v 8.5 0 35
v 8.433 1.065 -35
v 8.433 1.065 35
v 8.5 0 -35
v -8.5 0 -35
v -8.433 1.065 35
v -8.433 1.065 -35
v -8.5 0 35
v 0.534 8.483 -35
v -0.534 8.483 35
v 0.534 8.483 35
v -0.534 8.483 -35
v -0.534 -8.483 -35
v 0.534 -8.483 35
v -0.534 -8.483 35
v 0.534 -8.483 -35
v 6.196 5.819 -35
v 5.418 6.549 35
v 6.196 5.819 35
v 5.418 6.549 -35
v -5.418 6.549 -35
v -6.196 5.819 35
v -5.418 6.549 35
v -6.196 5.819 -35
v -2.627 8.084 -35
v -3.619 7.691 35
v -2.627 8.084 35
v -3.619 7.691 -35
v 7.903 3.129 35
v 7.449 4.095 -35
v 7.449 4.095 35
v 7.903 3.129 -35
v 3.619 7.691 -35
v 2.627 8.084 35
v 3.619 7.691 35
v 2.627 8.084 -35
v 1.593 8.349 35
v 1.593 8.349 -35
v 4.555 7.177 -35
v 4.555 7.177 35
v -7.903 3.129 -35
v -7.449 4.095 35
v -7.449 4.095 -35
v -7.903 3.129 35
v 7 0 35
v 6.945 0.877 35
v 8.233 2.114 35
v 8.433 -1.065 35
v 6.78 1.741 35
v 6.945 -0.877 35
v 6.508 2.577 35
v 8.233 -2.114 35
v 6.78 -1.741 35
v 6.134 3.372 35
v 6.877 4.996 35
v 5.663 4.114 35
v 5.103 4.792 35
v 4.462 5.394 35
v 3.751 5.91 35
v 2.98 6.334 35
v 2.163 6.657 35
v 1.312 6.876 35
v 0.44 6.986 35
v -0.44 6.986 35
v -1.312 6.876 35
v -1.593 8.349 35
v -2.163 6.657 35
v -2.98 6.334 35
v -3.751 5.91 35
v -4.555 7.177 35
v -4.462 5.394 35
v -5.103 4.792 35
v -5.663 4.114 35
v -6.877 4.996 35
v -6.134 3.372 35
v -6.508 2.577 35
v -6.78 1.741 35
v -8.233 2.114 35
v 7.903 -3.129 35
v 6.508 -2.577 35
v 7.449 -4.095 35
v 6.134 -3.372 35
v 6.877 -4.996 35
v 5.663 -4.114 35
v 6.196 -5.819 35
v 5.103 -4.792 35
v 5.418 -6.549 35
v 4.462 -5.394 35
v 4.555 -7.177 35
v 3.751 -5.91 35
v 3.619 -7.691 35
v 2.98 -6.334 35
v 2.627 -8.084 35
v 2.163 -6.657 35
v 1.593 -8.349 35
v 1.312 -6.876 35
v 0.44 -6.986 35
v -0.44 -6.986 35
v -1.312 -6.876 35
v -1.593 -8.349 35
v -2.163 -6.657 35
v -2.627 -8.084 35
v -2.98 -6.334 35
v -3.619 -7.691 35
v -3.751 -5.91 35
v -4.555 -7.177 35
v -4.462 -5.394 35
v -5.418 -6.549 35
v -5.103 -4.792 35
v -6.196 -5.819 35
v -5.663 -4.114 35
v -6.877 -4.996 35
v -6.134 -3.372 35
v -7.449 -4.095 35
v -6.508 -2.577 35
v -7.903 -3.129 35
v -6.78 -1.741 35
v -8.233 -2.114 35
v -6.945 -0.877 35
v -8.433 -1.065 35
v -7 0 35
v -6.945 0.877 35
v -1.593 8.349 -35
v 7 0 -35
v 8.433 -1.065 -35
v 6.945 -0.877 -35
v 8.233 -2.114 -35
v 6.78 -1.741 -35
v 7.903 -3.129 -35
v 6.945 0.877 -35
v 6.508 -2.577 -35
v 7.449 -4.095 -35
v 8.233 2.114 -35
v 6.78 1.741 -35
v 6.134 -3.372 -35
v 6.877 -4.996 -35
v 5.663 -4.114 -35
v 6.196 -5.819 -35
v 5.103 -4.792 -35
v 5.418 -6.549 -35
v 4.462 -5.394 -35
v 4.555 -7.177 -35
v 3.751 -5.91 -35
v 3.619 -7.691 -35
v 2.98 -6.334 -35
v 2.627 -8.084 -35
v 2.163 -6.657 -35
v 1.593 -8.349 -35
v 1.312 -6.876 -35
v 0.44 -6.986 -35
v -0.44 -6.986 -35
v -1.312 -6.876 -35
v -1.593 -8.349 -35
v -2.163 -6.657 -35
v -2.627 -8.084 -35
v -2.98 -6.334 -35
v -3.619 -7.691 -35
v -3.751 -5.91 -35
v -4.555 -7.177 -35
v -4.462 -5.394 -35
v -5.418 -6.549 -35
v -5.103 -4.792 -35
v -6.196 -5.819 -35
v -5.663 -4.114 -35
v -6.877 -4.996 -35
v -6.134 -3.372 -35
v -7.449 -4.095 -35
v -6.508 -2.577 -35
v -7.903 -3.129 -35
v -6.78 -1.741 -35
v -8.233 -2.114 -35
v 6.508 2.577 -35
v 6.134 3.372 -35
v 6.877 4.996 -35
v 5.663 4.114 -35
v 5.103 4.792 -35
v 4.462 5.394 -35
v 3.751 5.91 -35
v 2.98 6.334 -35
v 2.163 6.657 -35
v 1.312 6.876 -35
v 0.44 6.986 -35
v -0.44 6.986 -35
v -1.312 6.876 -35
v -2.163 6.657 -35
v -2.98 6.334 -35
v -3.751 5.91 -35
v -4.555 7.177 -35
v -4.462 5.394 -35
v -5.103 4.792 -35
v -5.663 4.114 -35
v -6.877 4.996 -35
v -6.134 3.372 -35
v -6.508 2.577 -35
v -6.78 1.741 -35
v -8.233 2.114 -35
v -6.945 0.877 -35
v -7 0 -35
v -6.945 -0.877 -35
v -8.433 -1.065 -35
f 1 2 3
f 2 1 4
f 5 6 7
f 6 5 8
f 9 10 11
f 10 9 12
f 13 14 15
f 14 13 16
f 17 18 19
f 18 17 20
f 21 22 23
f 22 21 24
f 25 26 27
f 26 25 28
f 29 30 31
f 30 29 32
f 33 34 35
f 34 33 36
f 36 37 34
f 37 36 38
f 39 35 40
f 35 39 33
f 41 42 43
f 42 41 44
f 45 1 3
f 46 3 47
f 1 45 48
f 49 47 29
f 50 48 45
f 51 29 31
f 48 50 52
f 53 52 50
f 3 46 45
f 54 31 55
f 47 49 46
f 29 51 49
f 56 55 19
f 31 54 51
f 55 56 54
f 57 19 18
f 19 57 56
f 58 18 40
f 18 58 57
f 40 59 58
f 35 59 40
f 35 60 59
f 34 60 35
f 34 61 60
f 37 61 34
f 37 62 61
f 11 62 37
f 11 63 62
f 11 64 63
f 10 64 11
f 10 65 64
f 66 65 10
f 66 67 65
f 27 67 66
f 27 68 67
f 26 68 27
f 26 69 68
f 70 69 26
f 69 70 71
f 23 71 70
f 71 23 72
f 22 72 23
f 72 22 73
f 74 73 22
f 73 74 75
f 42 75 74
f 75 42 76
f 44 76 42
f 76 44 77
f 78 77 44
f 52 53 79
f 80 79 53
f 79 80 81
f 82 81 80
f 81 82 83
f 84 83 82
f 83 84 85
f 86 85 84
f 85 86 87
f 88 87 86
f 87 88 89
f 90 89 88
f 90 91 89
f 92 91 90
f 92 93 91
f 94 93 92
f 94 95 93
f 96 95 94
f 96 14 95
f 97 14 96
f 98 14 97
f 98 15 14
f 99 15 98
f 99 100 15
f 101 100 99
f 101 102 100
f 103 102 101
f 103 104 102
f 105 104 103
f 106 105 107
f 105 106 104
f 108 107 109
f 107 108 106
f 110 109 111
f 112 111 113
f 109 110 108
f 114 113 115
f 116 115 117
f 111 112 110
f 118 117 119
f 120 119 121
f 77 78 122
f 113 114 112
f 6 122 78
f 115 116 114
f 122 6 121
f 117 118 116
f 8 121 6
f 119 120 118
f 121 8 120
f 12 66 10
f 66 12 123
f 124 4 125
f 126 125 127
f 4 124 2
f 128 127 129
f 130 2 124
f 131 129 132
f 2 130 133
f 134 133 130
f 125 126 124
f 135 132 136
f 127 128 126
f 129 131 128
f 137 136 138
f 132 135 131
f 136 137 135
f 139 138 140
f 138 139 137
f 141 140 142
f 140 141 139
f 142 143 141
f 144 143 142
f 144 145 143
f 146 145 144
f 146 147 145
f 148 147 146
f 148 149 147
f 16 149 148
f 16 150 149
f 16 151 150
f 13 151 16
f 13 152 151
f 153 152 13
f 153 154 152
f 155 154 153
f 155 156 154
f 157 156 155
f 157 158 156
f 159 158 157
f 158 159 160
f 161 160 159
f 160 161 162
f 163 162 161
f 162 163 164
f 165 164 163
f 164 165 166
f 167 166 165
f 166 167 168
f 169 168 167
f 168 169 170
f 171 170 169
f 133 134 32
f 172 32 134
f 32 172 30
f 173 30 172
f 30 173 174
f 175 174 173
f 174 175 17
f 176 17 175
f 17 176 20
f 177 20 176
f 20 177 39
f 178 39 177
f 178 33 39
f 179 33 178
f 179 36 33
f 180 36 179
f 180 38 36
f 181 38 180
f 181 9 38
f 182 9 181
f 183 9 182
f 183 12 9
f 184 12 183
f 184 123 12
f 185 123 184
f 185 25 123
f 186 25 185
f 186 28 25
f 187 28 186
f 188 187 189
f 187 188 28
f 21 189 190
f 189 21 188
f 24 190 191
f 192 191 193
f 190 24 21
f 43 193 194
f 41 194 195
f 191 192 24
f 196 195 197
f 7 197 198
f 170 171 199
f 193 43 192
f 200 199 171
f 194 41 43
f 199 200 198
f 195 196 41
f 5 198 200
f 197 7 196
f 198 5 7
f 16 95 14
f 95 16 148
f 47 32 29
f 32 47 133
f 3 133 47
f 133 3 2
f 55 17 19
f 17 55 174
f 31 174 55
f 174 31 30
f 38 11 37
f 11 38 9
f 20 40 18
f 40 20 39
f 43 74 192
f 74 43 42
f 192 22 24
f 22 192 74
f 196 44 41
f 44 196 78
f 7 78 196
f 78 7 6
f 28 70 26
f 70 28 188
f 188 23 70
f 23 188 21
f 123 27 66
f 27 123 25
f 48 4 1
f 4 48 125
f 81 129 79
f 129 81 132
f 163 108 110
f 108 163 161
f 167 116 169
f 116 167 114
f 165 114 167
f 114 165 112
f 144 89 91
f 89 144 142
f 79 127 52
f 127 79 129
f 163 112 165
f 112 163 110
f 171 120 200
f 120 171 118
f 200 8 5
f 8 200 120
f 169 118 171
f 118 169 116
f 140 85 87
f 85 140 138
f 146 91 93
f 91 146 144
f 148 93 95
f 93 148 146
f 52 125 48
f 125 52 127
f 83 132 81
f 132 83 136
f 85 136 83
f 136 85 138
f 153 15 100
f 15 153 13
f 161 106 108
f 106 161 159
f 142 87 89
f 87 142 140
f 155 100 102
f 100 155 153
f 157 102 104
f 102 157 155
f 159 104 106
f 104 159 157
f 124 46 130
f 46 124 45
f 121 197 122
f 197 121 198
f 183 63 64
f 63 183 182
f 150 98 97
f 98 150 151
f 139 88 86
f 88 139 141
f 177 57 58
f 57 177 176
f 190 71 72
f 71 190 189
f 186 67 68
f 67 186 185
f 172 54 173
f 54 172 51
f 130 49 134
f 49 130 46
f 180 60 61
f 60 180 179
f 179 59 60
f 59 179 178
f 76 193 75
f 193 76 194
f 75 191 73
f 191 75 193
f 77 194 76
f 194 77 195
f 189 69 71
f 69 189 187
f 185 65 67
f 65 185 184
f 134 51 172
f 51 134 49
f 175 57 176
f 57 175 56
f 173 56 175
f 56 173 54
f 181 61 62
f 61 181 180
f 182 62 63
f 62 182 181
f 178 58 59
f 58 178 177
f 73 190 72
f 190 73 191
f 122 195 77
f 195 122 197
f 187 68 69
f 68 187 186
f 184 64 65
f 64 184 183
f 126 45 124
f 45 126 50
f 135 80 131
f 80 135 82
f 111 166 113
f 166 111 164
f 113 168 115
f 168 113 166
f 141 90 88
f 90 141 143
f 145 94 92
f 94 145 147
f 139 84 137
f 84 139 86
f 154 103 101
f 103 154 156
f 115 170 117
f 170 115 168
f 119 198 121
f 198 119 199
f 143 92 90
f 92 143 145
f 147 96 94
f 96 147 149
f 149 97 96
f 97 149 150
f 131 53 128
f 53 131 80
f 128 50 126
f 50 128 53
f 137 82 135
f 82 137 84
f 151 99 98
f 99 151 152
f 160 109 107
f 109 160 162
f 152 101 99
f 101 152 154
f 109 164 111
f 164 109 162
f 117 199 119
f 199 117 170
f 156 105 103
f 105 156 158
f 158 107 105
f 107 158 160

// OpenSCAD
$fn = 50;


difference() {
	union() {
		translate(v = [0, 0, -35.0000000000]) {
			cylinder(h = 70, r = 8.5000000000);
		}
	}
	union() {
		translate(v = [0, 0, -100.0000000000]) {
			cylinder(h = 200, r = 7);
		}
	}
}
